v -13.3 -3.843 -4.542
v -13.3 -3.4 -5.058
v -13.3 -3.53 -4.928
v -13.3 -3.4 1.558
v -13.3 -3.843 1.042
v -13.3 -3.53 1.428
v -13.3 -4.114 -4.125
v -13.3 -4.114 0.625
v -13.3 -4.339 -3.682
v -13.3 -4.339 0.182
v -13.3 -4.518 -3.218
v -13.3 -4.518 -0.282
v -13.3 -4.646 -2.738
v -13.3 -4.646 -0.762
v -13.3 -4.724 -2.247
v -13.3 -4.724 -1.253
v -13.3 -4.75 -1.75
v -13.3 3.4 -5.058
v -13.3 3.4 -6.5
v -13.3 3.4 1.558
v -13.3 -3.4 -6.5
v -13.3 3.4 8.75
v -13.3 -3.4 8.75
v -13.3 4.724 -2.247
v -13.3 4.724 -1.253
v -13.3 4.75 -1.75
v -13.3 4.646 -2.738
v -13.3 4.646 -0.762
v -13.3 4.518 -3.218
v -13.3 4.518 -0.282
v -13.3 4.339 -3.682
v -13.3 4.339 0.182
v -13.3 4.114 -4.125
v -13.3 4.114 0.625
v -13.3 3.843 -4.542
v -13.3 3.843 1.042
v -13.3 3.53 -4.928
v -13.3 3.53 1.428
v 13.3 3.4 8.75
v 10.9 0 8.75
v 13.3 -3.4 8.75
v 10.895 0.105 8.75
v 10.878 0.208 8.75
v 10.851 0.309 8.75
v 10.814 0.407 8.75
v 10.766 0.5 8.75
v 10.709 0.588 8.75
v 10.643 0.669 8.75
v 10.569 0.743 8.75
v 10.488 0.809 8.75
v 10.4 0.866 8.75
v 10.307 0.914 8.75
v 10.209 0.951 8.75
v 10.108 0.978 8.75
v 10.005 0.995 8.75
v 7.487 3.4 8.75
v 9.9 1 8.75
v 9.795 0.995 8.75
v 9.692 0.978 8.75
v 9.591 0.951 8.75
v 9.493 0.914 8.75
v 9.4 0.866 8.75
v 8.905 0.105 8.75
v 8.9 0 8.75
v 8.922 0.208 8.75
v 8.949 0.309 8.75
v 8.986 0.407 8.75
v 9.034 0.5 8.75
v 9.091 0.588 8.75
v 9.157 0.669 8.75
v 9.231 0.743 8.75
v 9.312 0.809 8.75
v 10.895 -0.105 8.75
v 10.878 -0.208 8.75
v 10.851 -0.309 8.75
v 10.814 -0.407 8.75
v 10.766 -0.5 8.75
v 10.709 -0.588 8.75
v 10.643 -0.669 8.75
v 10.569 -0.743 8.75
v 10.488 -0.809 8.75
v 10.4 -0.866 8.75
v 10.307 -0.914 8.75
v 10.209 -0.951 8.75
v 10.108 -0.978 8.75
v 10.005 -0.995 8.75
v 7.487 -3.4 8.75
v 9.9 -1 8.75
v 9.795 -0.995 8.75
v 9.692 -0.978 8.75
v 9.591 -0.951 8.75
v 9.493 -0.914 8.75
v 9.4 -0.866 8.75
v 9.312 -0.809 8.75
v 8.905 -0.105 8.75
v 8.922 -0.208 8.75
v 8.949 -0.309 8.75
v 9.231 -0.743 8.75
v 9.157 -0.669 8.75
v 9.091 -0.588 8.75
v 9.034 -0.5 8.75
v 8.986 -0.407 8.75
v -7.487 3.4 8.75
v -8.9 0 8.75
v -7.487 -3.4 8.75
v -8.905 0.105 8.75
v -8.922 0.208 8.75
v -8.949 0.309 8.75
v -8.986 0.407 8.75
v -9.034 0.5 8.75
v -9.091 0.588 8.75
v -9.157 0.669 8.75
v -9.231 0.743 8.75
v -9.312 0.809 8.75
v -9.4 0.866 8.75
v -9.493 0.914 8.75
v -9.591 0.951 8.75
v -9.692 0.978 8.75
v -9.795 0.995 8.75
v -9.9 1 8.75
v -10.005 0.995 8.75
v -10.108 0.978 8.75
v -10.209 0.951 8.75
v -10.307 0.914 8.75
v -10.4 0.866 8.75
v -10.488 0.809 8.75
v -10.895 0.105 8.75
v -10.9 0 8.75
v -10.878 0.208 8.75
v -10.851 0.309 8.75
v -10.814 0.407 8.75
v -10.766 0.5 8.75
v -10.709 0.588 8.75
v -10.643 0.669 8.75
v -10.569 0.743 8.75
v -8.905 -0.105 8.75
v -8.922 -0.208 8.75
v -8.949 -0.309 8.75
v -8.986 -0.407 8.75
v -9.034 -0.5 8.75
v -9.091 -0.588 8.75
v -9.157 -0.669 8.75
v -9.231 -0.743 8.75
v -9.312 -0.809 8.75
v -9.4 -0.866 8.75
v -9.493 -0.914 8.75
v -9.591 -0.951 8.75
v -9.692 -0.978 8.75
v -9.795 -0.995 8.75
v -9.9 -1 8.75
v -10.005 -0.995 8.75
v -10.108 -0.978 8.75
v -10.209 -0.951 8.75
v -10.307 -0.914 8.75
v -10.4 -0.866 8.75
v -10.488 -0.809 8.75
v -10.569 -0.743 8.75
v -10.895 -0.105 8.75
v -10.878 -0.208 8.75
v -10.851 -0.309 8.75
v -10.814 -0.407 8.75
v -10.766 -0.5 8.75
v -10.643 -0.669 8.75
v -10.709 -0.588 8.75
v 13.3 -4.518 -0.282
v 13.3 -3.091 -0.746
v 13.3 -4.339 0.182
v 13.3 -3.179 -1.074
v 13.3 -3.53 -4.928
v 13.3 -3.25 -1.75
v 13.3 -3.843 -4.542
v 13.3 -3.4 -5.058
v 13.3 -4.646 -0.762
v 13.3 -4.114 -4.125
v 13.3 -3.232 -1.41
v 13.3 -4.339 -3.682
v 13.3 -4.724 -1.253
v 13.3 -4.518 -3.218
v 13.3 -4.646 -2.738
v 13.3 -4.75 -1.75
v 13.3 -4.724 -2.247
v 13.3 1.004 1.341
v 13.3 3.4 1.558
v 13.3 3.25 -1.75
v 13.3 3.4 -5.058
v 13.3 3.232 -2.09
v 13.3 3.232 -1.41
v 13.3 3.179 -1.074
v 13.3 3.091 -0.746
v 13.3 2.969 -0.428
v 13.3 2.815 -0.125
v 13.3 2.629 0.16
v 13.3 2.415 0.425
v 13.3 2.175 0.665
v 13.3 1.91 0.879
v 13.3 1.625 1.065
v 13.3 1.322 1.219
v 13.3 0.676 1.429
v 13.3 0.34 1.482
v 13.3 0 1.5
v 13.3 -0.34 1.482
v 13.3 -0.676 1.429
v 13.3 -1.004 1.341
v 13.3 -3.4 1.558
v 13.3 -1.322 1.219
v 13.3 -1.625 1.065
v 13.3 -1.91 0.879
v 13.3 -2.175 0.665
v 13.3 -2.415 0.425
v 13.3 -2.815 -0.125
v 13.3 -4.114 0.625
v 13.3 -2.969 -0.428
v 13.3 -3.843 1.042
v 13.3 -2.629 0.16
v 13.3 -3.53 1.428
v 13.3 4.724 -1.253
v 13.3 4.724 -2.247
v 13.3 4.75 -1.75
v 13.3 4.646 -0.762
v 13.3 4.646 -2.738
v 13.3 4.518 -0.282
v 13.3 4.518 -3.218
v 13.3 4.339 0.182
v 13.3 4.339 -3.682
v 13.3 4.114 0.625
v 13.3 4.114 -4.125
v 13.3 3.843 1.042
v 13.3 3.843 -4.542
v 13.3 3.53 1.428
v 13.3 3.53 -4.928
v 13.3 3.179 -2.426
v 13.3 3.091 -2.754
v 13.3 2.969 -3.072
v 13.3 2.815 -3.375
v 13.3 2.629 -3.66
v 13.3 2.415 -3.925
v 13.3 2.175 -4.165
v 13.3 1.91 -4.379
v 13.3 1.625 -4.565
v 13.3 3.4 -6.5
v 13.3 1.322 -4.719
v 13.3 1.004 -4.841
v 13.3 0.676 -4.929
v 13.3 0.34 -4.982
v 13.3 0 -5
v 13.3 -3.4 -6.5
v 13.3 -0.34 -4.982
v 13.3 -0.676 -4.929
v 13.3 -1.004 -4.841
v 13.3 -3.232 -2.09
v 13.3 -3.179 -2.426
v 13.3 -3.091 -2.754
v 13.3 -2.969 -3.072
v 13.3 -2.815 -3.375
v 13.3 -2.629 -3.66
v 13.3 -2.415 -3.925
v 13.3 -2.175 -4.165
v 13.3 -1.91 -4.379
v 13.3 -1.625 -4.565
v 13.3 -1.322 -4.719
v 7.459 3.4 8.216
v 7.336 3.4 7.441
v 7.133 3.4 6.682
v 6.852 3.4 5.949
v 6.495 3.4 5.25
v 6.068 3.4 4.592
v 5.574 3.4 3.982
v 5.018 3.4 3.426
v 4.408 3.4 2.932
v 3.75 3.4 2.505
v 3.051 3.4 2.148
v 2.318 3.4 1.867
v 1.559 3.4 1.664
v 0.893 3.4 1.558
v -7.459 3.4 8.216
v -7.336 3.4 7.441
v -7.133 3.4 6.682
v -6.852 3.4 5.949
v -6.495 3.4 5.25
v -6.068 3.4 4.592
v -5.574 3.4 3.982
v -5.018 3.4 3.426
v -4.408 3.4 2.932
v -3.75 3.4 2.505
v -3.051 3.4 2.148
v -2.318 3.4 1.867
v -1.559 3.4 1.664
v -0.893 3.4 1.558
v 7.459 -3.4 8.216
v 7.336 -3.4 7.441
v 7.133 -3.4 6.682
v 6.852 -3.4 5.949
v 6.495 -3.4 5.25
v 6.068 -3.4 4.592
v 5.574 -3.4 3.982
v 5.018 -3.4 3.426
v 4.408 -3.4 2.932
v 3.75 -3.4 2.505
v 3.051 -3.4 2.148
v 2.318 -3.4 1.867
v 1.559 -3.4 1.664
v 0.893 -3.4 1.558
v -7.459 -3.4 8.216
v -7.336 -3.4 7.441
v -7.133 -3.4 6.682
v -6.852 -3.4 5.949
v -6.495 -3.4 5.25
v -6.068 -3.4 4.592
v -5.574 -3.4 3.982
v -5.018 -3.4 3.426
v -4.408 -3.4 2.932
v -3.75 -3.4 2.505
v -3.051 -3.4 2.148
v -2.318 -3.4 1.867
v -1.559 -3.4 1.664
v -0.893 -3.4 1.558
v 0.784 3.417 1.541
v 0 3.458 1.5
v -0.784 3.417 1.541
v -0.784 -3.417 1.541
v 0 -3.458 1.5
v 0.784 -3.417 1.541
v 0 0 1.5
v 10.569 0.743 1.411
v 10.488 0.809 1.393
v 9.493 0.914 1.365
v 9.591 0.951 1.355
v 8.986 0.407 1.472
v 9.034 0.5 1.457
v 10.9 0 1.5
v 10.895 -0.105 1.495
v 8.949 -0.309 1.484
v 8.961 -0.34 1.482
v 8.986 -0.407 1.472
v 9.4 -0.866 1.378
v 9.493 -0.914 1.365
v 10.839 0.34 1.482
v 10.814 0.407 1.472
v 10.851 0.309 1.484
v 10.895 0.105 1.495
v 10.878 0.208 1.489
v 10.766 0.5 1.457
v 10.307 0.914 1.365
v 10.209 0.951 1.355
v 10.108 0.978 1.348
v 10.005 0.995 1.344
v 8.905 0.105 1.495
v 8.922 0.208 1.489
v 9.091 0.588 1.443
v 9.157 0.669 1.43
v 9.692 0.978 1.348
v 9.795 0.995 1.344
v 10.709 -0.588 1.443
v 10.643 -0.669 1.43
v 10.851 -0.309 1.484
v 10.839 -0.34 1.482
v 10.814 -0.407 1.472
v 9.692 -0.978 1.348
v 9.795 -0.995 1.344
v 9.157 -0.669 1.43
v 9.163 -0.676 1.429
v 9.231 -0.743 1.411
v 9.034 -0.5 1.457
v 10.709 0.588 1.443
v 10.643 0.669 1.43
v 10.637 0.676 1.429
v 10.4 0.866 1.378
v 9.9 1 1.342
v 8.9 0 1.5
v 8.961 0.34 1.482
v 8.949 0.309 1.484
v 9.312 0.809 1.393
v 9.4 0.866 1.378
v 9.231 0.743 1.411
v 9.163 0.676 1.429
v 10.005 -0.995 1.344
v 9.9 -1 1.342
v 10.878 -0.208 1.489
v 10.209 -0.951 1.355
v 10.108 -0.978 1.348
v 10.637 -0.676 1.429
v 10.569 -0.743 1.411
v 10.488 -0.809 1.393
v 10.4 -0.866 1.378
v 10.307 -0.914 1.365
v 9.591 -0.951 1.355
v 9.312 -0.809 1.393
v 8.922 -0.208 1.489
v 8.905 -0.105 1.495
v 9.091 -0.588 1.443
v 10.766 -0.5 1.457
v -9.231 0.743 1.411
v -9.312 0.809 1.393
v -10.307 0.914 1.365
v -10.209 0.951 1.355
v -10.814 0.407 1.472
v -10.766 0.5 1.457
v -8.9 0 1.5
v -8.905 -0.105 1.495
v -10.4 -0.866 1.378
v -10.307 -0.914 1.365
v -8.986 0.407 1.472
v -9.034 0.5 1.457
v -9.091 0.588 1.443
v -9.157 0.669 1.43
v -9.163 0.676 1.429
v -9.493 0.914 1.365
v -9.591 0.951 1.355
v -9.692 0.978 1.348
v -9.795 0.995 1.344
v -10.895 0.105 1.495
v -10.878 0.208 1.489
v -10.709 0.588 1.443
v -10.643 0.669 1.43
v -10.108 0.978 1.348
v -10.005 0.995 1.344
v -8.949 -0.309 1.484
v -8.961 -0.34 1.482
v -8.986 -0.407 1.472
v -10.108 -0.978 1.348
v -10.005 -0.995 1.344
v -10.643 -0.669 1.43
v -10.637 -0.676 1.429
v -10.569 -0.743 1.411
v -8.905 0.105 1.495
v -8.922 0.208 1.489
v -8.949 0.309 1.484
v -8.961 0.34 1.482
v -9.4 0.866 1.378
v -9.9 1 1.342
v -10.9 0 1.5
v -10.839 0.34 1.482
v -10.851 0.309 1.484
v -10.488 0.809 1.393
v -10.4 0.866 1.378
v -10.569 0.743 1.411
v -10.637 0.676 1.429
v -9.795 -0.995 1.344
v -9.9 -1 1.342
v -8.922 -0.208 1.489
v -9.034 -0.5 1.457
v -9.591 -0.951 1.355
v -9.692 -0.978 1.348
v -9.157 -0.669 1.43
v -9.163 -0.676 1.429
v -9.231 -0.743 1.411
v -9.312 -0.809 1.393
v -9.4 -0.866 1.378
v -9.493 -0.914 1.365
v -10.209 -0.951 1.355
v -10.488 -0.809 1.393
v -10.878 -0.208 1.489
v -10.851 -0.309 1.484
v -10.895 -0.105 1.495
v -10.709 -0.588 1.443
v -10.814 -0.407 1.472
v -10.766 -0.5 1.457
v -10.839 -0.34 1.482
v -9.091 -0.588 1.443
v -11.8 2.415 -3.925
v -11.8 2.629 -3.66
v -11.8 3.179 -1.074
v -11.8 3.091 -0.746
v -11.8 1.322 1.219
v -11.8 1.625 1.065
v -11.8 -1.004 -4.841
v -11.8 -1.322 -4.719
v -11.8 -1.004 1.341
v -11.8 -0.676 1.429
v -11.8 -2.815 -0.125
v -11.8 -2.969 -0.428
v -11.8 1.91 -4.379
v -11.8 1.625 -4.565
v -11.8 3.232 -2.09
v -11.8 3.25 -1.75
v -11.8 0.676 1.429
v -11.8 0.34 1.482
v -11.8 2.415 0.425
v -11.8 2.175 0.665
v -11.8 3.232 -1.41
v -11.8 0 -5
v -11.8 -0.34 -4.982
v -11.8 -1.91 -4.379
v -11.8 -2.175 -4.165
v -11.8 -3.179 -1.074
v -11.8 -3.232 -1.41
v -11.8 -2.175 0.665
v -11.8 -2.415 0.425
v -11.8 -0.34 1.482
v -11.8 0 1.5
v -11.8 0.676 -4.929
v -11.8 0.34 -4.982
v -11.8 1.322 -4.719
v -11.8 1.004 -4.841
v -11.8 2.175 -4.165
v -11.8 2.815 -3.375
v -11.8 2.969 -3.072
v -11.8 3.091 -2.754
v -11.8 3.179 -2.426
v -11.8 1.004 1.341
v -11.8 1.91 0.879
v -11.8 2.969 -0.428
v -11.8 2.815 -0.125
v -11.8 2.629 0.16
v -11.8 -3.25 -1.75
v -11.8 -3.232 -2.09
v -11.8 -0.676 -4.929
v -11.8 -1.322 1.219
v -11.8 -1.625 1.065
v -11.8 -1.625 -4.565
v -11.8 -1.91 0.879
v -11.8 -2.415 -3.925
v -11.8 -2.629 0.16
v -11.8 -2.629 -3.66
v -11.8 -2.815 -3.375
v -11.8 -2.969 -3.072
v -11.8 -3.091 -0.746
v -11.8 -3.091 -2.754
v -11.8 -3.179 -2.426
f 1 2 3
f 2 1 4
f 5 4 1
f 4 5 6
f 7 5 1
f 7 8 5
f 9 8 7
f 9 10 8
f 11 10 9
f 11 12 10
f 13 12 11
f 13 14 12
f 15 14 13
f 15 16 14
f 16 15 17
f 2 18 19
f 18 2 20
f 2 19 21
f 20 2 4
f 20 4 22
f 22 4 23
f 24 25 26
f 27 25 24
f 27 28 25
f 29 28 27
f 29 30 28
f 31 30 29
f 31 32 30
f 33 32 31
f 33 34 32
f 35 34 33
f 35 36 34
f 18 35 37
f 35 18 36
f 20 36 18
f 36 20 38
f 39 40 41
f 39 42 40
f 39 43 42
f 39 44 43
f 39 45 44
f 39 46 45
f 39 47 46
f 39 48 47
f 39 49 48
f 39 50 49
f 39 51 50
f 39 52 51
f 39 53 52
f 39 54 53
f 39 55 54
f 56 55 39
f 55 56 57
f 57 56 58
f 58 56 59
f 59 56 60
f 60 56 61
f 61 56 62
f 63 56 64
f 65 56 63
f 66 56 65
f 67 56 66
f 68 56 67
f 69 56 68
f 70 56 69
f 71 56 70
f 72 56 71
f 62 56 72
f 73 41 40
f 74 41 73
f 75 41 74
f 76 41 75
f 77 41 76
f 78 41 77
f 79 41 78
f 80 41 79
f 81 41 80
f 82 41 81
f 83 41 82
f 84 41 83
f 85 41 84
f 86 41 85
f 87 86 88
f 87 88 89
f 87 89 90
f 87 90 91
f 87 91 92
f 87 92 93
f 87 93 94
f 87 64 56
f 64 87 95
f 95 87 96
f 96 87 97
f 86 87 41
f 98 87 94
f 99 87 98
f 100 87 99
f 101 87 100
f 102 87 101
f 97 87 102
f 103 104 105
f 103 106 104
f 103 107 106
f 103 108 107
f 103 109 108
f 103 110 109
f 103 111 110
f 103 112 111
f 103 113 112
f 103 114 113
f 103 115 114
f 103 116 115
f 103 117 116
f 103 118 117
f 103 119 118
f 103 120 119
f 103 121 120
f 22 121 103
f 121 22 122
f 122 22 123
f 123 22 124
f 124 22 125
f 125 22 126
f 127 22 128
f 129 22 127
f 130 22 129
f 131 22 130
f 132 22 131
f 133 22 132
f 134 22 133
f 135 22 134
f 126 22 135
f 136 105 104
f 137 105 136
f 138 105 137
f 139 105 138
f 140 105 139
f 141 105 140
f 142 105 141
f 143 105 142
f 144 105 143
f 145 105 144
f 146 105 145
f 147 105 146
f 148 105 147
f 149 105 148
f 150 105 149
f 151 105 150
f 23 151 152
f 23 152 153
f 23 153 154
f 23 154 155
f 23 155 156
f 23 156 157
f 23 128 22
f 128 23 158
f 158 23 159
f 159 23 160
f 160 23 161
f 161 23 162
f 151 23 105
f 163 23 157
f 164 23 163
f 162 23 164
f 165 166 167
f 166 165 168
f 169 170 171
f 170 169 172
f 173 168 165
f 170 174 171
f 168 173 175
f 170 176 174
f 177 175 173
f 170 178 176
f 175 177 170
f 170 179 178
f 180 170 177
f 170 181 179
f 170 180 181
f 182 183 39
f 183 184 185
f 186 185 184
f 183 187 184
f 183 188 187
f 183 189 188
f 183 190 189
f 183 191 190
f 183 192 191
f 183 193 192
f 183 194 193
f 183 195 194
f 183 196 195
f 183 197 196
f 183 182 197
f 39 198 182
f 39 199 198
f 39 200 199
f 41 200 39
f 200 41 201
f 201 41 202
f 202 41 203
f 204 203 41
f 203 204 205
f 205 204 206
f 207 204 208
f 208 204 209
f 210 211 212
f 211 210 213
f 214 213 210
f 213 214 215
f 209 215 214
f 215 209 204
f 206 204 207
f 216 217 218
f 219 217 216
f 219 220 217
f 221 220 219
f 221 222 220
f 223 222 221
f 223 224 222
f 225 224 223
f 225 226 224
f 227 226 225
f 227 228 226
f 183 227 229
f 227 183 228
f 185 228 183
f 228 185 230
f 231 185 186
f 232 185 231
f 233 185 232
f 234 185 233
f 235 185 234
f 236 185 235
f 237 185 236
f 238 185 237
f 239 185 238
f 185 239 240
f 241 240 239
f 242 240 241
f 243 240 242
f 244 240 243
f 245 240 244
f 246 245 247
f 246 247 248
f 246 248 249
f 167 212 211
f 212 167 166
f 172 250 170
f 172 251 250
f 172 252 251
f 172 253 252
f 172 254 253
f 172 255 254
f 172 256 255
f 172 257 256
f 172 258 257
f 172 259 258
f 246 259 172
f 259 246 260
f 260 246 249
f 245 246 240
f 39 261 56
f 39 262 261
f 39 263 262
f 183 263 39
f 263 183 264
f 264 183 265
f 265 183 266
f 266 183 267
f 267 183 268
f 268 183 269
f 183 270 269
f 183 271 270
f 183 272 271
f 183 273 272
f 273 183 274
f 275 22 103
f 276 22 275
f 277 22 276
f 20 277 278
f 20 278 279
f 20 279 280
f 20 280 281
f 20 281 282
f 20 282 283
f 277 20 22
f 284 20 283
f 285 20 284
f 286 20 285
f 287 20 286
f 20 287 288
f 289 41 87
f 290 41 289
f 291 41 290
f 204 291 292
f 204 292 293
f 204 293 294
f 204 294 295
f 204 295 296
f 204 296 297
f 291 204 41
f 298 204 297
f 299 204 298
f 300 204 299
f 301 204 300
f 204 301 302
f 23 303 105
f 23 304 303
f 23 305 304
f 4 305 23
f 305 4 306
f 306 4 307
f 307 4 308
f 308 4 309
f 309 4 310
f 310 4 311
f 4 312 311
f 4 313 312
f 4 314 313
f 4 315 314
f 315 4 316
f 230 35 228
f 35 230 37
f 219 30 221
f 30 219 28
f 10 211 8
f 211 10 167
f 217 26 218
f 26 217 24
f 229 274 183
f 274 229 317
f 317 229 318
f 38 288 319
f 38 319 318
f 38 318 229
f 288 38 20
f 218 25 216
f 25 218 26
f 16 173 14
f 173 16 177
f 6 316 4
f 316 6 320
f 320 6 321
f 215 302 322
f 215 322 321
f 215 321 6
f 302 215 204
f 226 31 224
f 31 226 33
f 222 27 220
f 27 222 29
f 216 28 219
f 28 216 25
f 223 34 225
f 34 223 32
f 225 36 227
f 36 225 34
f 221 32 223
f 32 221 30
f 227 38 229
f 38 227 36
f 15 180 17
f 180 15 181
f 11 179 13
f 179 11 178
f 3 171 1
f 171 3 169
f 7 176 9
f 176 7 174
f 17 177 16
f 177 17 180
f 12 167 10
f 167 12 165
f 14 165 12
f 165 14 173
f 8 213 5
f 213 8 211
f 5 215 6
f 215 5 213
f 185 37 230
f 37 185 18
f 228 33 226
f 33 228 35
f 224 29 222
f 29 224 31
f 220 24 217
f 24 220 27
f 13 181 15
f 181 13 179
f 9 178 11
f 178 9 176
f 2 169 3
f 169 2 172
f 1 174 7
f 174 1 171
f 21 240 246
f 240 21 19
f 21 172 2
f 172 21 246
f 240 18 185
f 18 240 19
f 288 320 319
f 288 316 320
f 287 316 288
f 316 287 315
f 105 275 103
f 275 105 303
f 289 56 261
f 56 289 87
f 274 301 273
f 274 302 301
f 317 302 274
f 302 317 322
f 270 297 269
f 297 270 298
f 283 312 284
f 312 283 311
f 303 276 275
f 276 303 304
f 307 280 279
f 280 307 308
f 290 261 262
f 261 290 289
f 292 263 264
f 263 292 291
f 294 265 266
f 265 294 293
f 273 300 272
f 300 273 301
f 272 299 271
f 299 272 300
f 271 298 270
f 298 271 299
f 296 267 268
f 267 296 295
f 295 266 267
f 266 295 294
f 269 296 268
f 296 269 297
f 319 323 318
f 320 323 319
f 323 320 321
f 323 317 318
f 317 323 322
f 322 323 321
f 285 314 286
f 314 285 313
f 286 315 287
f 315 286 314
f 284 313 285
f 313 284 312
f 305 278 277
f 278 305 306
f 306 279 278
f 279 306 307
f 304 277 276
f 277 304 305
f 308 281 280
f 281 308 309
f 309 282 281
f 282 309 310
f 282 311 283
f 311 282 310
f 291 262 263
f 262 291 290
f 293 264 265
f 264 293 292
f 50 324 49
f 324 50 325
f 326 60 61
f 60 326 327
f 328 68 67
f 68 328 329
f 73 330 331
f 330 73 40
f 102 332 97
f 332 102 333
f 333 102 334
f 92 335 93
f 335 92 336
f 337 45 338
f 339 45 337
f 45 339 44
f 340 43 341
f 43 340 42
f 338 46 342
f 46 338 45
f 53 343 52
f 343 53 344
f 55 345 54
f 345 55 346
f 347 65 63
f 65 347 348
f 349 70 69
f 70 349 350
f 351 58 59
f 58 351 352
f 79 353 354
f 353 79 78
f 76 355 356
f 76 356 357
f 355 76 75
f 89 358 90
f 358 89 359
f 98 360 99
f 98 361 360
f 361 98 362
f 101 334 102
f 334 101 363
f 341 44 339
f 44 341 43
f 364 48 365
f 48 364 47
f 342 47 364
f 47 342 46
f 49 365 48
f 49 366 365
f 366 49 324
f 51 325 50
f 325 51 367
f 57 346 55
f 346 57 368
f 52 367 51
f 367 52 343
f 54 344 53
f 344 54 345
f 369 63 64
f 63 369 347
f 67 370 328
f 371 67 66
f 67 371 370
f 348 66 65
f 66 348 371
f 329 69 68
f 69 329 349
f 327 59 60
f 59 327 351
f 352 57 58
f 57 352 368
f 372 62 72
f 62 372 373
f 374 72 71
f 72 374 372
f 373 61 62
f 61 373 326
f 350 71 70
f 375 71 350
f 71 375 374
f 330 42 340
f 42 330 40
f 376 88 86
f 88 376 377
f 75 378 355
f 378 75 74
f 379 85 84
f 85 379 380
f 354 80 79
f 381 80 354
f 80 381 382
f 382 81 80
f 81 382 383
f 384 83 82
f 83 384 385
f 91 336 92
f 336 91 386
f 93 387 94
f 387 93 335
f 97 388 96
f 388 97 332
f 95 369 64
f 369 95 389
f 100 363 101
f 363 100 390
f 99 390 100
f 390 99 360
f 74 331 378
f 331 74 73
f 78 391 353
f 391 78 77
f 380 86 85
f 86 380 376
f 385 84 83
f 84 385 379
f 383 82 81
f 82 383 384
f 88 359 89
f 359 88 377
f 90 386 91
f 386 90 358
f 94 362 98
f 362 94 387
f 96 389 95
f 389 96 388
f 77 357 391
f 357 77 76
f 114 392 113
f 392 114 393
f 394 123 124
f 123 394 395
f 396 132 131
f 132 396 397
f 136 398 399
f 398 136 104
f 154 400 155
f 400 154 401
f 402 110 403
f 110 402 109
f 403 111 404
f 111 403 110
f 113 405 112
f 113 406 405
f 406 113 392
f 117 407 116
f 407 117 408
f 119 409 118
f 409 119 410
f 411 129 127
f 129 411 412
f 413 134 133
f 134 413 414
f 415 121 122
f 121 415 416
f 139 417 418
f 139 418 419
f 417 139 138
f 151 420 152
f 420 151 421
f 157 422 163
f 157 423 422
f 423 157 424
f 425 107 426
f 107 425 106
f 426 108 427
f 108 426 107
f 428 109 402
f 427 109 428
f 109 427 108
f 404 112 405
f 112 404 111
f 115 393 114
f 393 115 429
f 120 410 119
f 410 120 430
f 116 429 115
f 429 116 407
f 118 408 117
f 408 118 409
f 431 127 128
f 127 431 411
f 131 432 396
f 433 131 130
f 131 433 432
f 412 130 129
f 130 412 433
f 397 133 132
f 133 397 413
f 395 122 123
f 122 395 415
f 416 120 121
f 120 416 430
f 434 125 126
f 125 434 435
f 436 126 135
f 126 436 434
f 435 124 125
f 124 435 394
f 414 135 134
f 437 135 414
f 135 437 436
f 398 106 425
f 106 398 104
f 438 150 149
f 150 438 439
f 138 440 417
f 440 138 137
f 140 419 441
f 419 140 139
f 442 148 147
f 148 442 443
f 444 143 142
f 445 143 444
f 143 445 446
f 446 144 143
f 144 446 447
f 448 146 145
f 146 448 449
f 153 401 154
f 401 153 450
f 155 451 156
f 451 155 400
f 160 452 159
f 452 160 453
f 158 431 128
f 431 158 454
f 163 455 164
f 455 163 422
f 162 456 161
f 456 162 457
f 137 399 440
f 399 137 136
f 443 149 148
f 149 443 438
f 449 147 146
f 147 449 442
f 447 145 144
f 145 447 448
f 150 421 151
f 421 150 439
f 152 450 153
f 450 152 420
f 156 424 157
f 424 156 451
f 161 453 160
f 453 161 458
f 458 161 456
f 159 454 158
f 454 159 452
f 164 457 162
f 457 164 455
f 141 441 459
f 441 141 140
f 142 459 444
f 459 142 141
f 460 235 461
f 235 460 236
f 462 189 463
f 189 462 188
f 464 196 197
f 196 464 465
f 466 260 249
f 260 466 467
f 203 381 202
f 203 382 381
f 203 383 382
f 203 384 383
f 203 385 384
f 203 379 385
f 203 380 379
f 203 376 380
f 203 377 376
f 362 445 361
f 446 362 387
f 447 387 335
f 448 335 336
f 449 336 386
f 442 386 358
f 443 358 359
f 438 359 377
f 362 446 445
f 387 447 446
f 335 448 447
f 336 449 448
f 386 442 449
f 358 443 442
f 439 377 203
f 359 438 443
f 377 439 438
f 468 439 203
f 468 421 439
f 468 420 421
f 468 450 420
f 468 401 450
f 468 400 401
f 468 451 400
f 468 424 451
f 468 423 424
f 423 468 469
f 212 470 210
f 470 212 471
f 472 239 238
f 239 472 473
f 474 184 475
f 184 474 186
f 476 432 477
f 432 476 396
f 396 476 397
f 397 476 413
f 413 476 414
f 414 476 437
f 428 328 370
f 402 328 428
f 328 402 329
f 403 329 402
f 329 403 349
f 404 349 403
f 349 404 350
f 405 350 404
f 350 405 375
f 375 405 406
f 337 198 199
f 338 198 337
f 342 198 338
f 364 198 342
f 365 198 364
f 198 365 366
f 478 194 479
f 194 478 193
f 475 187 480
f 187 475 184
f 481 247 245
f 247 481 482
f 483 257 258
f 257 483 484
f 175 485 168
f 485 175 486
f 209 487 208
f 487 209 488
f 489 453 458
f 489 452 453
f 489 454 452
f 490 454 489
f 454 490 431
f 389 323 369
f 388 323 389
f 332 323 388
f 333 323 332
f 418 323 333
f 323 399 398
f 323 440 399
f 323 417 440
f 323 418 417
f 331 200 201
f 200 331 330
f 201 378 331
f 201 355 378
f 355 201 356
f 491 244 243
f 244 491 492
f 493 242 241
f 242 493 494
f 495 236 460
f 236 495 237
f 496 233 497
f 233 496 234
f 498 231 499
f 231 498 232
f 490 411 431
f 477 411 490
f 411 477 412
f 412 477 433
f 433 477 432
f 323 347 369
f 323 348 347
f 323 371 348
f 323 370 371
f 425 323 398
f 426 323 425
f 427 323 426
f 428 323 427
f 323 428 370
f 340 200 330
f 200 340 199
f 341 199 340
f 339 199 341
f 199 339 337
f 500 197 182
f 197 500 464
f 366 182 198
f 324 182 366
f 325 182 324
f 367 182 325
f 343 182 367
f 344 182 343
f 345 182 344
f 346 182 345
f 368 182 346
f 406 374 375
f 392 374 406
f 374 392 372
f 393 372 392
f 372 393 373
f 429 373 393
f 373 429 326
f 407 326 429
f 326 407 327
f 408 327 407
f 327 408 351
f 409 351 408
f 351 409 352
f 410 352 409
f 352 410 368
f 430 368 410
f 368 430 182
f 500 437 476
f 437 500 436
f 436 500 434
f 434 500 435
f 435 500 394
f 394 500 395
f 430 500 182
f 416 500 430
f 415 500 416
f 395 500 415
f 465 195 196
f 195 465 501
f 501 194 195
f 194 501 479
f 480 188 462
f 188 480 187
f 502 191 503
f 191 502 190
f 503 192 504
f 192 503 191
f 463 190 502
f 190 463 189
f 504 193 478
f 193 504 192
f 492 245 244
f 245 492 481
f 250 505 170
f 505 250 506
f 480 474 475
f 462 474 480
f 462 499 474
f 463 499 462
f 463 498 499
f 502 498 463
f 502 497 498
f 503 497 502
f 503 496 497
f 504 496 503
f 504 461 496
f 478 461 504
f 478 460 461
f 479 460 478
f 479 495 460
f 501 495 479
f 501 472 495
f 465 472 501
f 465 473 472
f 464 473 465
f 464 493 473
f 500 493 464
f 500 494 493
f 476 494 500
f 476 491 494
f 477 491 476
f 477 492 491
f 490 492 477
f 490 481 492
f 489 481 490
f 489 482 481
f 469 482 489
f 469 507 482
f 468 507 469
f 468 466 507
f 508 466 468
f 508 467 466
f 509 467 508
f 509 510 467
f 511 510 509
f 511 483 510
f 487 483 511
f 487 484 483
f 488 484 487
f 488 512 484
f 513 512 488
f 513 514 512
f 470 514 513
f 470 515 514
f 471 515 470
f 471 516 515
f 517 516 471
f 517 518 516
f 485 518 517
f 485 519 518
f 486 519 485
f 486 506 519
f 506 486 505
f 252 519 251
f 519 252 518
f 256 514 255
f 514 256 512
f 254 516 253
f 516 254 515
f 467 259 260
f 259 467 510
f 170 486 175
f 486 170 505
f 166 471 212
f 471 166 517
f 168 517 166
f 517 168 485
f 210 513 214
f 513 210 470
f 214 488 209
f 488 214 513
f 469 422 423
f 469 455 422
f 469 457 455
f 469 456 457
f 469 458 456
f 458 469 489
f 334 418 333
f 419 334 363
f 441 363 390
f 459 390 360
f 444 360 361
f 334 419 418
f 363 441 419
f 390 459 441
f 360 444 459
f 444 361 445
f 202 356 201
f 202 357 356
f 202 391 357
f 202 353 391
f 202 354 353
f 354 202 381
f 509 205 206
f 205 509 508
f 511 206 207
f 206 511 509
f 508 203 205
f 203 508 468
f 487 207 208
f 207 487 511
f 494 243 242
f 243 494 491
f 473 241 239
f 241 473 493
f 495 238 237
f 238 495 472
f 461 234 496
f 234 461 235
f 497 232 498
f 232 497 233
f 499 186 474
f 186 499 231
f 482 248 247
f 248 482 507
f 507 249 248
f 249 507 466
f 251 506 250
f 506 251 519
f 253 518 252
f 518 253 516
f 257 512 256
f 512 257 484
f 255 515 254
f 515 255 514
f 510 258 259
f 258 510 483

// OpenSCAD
dia = 15; //beam diameter
dia_gap = 0.5; //gap between two halves
screw = 3.8; //screw hole size
screw_to_beam = 0.5; //distance between beam and screw
wall = 1.5; //wall thickness around screw hole

hex_dia = 7.2; //hex bold counter sunk diameter M3=6.4 (set to 0 to ignore)
hex_depth = 1.5; //hex bold counter sunk depth M3=2.0

r = dia/2;
r_screw = screw/2;

land_dia = 6.5;

$fn=60;

screw2 = 2;

w = dia + 2 * (screw_to_beam + screw + wall); //width
d = screw + 2*wall; //depth
h = r + wall; //height


land_r = land_dia/2;
land_or = land_r+wall;


//rotate([-90,0,0])
difference() {
  union() {
    translate([0,0,(h-dia_gap/2)/2]) cube([w,d,h-dia_gap/2],center=true);

    //land
    translate([0,0,-land_or+2*wall]) rotate([0,90,0])cylinder(h=w,r=land_or,center=true);
    translate([0,0,-land_or+2*wall-land_or+2]) cube([w,d,4],center=true);
  }
  //beam
  translate([0,0,h]) rotate([90,0,0]) cylinder(h=100,r=r,center=true);

  //screws
  screw_offset = r + r_screw + screw_to_beam;
  translate([+screw_offset,0,+50]) cylinder(h=100,r=screw2/2,center=true);
  translate([-screw_offset,0,+50]) cylinder(h=100,r=screw2/2,center=true);
  
  
  //land
  translate([wall,0,-land_or+2*wall]) rotate([0,90,0])cylinder(h=w,r=land_r,center=true);
}
